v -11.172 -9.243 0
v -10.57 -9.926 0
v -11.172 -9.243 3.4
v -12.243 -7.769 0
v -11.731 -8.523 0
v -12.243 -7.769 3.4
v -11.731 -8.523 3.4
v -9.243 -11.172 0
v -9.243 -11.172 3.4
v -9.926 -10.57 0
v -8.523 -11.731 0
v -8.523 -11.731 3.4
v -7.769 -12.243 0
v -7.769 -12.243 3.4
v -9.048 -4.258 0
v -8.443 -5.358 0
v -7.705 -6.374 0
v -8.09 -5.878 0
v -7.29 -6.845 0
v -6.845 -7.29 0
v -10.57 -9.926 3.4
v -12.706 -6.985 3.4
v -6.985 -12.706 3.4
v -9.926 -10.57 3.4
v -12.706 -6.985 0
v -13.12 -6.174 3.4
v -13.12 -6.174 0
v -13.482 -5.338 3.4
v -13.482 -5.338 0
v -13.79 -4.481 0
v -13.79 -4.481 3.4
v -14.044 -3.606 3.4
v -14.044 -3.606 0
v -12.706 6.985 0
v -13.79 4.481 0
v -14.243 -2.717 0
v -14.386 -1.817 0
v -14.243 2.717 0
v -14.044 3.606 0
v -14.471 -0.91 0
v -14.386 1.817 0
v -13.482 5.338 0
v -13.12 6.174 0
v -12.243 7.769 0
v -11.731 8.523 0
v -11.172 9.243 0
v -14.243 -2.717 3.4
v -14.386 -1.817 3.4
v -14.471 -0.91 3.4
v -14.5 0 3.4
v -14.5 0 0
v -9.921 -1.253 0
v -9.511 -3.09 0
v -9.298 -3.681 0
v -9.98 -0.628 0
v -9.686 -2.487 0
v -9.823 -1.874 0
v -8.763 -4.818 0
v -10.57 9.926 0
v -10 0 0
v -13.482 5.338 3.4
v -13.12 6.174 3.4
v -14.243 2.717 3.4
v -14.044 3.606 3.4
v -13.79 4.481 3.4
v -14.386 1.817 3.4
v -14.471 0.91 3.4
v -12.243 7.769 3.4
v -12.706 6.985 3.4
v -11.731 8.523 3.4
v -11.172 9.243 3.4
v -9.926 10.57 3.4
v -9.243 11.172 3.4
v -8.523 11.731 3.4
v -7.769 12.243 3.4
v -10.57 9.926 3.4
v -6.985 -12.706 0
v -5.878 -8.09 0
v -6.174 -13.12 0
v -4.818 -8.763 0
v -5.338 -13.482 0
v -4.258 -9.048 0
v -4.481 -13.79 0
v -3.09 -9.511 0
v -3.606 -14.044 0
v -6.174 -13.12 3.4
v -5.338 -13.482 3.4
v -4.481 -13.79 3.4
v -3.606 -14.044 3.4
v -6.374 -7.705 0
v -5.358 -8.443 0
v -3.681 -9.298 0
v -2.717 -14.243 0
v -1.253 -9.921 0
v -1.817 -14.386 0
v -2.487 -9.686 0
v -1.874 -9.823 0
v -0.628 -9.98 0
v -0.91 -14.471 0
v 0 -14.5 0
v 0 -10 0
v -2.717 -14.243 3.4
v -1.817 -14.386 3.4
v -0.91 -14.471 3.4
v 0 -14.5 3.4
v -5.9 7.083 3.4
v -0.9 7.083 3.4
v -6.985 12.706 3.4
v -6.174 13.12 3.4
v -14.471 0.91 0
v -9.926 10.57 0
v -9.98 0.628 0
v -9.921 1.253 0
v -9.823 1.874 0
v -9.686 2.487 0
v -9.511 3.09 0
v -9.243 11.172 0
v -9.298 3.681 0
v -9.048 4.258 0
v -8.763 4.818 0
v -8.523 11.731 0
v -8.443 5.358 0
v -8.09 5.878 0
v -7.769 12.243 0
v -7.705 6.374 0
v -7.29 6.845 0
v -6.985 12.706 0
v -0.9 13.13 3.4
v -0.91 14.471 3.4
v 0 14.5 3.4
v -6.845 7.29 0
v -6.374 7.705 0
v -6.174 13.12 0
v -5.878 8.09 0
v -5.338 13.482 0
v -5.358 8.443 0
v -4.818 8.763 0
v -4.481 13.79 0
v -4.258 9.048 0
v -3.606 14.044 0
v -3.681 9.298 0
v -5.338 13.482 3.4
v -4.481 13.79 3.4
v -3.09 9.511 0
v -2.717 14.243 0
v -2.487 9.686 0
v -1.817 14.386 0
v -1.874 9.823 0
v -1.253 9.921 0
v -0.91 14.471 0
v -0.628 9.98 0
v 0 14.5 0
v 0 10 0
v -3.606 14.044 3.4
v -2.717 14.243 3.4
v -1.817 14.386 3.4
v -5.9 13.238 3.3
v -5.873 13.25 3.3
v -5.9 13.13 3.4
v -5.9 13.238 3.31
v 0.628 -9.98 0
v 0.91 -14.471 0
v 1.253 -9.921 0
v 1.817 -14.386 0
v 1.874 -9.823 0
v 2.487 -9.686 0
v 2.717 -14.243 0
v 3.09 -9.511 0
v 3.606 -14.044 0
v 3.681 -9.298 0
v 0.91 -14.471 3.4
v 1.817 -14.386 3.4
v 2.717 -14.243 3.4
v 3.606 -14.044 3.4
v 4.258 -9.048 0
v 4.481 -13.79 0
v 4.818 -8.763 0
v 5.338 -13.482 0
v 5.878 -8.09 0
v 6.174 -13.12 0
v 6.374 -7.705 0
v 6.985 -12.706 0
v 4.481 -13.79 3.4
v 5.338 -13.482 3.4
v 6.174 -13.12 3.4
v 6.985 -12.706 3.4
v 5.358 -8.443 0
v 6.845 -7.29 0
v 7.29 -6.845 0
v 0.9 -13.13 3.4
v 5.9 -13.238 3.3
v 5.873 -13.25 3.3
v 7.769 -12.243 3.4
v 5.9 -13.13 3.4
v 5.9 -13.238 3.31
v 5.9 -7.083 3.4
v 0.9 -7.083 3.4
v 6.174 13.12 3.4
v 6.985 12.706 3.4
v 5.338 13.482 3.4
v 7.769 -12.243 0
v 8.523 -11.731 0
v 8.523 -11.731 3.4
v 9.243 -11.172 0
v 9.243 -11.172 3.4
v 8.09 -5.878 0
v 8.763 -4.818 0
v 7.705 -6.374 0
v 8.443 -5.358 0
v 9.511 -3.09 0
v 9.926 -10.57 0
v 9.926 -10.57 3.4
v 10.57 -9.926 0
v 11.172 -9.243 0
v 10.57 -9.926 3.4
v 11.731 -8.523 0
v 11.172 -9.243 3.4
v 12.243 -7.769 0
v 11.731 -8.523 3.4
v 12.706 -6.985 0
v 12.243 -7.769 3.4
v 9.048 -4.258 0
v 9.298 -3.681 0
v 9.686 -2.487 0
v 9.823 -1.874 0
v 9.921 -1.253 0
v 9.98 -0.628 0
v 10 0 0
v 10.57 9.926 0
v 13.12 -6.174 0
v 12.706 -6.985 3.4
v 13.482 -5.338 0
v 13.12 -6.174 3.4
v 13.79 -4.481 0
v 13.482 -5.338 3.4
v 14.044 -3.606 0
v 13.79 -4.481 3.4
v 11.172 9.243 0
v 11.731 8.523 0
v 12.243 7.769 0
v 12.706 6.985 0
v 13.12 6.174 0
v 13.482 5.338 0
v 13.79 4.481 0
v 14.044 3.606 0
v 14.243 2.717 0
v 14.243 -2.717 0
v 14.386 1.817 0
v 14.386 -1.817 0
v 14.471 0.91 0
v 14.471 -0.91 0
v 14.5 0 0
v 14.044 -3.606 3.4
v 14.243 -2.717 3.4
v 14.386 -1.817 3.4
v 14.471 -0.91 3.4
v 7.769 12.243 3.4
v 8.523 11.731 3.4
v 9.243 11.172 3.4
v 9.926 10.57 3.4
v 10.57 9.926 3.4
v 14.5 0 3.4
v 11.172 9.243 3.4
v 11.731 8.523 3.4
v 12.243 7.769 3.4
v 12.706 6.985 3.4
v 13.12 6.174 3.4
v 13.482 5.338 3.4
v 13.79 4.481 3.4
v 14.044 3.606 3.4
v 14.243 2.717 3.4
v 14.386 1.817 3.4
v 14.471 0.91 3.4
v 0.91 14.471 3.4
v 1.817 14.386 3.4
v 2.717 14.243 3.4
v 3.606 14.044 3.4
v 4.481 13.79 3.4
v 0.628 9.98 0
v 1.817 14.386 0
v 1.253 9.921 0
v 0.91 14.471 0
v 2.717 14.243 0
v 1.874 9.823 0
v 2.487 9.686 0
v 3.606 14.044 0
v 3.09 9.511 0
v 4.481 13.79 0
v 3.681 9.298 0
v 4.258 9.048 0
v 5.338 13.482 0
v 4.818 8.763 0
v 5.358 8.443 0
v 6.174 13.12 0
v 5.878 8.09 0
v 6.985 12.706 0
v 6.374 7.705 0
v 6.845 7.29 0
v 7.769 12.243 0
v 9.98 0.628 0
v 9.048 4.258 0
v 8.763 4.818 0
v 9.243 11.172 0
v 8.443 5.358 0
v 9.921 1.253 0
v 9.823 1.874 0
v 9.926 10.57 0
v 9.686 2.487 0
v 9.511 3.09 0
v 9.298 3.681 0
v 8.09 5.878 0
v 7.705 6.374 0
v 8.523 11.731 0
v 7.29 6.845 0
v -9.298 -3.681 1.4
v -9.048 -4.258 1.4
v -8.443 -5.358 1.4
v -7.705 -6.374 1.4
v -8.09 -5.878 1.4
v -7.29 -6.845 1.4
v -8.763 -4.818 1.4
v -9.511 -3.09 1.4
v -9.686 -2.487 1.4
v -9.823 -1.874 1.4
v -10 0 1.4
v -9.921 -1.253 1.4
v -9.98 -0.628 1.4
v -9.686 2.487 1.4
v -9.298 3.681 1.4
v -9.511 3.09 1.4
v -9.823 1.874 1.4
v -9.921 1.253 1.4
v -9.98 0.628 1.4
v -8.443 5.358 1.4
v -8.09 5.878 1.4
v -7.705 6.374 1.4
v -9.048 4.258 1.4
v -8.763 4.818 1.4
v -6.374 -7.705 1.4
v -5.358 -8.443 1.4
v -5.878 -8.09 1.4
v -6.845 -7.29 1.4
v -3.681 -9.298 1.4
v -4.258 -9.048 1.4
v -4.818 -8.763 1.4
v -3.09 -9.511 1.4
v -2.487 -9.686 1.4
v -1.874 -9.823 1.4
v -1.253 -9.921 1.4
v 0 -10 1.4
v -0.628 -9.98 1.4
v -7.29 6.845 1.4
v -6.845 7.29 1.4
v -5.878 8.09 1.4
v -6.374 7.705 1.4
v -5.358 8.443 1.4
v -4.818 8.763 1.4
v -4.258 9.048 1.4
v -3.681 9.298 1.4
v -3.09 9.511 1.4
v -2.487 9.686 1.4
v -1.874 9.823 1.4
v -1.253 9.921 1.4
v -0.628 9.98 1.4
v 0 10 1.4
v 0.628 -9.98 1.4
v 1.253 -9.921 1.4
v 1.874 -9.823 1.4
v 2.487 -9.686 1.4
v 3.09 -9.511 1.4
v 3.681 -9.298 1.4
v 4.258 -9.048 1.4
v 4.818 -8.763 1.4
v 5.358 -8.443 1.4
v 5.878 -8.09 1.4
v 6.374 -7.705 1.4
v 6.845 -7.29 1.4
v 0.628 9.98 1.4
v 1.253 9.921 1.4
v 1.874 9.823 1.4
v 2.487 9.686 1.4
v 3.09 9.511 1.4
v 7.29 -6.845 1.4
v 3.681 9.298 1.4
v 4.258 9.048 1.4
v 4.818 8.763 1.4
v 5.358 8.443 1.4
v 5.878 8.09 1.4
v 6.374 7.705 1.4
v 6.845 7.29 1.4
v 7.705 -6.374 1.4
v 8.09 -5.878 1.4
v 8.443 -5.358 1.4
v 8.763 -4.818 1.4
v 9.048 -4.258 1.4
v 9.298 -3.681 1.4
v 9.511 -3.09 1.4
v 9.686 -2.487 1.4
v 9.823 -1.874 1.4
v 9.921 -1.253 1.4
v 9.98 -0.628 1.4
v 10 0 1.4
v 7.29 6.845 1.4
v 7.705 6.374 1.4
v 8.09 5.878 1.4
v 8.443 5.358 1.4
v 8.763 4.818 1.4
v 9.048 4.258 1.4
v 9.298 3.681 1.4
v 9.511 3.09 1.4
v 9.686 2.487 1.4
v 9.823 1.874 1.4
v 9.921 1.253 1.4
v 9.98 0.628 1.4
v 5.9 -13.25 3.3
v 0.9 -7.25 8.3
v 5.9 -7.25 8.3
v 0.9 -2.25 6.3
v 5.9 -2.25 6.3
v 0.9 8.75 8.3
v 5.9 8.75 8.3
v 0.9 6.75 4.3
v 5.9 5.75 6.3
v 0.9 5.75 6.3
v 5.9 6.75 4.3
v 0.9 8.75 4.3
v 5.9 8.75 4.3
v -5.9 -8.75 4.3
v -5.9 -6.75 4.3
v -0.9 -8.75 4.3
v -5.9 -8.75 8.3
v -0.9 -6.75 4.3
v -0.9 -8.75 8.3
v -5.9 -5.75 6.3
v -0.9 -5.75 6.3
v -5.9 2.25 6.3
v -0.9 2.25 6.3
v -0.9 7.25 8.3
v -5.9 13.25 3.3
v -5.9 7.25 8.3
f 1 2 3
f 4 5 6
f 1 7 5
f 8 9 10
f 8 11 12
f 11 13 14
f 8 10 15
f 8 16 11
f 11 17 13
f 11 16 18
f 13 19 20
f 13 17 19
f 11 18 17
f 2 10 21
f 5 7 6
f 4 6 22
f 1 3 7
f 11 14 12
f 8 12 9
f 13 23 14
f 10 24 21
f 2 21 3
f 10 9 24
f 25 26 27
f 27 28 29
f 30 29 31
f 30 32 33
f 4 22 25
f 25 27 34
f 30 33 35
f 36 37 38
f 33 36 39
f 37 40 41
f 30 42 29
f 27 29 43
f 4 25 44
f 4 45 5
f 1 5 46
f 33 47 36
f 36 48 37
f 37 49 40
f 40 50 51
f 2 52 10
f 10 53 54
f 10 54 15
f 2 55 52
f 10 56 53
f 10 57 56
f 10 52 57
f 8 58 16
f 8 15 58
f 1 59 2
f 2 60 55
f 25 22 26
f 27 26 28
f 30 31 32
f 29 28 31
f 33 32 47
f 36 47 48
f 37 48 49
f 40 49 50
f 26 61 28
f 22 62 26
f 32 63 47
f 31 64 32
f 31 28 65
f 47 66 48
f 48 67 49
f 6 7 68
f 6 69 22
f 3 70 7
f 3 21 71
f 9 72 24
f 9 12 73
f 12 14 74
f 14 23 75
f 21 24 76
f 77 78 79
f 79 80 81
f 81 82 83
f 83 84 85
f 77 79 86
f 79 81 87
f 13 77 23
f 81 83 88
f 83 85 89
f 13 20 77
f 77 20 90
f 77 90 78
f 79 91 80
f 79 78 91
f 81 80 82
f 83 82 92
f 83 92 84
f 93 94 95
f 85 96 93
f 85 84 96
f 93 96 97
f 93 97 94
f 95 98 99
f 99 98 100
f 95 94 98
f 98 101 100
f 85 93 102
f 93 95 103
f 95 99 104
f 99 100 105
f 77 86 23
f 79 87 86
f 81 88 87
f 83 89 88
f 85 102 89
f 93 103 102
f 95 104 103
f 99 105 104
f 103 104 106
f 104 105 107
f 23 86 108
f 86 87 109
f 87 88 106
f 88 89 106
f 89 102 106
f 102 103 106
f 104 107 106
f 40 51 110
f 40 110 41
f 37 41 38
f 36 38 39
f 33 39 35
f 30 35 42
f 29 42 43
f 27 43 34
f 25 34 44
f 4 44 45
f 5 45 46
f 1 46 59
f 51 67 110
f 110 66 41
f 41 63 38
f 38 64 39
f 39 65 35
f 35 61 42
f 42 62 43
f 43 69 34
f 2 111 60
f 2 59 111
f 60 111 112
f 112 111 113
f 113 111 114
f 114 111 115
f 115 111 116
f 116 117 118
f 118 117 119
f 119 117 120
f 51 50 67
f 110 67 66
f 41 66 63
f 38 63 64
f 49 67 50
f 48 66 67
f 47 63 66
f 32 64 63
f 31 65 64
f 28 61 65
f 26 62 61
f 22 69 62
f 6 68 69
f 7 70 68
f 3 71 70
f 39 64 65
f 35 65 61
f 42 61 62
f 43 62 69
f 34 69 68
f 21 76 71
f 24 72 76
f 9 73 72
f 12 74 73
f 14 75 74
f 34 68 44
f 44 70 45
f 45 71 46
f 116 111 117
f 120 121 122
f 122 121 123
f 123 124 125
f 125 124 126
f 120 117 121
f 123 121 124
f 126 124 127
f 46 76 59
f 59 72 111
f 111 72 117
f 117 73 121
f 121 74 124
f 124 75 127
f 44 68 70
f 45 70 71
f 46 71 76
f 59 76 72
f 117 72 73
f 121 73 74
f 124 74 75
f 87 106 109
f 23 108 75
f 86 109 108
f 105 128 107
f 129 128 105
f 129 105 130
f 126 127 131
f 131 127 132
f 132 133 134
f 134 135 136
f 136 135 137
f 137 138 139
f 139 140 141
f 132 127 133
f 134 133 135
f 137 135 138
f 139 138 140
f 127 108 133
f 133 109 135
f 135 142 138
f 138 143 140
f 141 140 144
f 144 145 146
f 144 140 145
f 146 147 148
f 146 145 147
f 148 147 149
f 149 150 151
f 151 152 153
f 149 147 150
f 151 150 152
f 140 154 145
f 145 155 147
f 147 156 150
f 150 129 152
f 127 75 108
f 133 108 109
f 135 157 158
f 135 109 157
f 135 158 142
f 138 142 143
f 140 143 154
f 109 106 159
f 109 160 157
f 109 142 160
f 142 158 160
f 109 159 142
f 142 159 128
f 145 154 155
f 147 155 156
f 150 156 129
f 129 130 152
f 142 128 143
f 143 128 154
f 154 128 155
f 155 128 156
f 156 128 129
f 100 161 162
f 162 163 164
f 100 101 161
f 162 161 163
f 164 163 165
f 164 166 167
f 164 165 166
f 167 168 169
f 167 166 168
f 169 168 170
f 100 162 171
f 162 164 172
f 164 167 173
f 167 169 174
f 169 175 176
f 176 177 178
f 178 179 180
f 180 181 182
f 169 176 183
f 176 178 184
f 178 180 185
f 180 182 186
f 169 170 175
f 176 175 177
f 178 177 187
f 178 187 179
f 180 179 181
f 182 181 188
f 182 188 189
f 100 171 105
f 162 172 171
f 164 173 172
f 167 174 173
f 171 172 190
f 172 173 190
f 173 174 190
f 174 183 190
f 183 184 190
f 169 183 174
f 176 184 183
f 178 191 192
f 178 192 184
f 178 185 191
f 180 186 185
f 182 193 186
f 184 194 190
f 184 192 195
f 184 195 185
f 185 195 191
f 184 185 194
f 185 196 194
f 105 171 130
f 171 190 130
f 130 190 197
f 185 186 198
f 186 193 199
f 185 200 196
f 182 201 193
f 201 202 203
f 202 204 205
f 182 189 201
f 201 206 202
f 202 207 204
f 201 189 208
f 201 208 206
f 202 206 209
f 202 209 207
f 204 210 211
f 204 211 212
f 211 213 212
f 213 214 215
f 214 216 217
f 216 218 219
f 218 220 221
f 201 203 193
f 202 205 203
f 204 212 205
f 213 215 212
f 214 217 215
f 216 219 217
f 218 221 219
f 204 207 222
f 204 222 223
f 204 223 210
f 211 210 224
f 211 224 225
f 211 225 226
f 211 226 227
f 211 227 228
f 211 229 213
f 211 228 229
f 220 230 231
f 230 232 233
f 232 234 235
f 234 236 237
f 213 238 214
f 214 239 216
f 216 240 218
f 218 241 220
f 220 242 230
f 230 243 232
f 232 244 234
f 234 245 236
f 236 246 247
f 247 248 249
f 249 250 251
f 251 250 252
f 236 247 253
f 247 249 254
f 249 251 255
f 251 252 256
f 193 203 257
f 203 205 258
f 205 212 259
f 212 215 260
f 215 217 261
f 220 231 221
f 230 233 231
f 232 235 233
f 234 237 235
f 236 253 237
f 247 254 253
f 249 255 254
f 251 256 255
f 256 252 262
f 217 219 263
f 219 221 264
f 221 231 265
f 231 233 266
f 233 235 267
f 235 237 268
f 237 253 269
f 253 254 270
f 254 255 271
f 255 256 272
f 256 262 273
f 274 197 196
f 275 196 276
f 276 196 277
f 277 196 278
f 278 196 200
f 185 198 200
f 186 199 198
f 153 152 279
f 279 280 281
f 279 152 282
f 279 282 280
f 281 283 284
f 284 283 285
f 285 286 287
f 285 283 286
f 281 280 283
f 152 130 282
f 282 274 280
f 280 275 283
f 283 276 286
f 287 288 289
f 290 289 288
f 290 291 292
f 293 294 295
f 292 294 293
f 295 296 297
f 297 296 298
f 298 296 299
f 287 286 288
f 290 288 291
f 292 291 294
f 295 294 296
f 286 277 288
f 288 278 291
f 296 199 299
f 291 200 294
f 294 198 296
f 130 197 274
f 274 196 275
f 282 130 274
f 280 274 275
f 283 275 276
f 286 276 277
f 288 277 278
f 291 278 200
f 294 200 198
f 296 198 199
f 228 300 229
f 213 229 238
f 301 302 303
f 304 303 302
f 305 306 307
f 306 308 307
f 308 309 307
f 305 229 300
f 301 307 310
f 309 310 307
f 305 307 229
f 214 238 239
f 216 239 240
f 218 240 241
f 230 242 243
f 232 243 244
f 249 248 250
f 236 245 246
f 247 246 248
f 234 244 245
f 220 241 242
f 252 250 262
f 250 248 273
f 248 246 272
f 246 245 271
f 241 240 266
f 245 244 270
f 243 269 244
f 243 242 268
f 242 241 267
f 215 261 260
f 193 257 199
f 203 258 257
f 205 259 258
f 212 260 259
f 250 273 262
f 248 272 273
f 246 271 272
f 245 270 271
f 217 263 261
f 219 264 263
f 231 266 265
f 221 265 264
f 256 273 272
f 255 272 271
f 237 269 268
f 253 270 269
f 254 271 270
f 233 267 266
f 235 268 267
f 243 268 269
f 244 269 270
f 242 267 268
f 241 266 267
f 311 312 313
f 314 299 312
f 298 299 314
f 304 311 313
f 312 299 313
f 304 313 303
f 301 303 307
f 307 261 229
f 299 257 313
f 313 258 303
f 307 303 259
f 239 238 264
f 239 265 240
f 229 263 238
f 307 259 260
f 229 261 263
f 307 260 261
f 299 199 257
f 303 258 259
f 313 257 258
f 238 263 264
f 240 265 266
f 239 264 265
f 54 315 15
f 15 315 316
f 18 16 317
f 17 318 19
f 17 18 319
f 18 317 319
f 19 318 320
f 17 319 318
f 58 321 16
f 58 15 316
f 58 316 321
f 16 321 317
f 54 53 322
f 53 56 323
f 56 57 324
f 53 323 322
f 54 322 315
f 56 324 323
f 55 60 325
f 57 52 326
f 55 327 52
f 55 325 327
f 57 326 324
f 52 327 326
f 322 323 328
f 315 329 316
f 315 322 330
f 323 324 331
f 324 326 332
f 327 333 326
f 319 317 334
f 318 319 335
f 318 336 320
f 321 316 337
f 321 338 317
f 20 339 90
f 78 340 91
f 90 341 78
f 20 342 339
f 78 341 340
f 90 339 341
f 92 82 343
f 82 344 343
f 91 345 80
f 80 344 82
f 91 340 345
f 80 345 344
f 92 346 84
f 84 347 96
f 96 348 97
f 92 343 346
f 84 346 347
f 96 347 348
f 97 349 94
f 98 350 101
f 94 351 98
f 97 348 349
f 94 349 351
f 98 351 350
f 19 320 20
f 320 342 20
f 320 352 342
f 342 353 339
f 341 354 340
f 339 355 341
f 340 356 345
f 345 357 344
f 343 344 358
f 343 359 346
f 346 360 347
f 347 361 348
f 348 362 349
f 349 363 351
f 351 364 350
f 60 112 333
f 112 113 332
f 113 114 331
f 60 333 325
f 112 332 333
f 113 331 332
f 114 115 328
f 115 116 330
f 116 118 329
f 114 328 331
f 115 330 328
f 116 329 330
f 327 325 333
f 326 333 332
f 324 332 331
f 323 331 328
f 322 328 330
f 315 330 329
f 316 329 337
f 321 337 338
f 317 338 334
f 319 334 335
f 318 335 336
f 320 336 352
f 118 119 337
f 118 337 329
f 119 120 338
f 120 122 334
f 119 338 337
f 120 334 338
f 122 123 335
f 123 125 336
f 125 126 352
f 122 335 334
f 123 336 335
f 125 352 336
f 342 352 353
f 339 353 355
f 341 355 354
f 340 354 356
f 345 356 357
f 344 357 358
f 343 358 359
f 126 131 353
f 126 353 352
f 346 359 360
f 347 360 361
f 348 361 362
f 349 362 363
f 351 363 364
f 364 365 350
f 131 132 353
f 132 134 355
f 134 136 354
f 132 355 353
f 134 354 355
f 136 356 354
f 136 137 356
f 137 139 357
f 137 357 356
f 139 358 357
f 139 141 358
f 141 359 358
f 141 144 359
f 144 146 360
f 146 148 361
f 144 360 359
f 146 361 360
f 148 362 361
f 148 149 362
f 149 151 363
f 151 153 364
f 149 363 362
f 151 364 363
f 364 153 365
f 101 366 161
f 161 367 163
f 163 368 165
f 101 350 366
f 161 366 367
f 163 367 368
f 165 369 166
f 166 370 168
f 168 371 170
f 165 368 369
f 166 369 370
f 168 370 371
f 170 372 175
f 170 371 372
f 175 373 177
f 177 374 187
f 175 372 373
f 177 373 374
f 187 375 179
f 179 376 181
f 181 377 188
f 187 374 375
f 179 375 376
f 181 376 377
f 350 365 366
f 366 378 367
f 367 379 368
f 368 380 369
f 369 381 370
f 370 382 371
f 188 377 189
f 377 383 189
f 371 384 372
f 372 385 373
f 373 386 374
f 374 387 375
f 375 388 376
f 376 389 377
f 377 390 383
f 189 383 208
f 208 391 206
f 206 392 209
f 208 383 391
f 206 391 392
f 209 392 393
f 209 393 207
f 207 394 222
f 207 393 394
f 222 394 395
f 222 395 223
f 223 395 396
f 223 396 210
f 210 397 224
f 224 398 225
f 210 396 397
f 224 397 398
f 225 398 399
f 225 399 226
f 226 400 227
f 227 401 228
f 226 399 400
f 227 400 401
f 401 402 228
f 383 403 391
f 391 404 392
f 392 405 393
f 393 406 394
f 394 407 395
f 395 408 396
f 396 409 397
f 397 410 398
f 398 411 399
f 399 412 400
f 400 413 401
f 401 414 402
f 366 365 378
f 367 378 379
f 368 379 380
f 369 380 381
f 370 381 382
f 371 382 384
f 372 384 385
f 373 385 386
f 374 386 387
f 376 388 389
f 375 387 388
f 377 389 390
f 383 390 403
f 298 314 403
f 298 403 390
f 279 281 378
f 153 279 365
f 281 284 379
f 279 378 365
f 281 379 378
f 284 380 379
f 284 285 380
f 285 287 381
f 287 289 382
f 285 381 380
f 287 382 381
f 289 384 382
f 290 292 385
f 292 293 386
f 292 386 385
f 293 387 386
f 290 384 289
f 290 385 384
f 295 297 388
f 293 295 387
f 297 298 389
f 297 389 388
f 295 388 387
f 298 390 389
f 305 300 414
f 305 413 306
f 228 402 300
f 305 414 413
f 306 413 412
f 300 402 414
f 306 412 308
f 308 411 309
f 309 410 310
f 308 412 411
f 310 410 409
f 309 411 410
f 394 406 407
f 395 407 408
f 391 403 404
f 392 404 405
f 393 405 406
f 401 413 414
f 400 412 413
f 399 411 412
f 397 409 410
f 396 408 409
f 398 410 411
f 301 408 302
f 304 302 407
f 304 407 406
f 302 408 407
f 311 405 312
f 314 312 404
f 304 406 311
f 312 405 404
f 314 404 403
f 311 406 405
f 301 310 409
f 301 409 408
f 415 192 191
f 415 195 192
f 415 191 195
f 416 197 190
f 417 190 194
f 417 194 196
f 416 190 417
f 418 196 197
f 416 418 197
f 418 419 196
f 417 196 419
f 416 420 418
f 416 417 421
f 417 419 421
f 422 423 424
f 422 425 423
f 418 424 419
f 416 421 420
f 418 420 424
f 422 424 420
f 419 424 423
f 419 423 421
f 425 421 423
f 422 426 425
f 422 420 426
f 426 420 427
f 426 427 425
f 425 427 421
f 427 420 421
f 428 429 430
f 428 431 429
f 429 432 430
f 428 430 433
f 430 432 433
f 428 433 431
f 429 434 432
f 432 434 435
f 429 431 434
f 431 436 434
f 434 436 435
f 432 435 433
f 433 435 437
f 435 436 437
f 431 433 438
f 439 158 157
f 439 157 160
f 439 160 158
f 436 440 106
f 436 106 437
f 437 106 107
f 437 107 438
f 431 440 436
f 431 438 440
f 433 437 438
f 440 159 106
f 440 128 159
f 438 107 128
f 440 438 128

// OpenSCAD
magnet_diameter = 20;
magnet_height = 1.4;
outer_diameter = 29;

standoff = 0.9;
thickness = 2;

$fn = 100;

module hook() {
    h = magnet_height + thickness + standoff;
    d = outer_diameter;
    
    translate([standoff, -d/4, h]) rotate([0, 90]) linear_extrude(5)
        polygon([[-4,0],[-4,8],[-4,16],[0,16],[0,14],[-2,13],[-2,8],[-2,5],[1,0],[1,-6]]);

}

module base() {
    d = outer_diameter;
    h = magnet_height + thickness;
    cylinder(h, d/2, d/2);
}

module magnet() {
    d = magnet_diameter;
    h = magnet_height;
    cylinder(h, d/2, d/2);
}

hook();
rotate([0, 0, 180]) hook();

difference() {
    base();
    magnet();
}
